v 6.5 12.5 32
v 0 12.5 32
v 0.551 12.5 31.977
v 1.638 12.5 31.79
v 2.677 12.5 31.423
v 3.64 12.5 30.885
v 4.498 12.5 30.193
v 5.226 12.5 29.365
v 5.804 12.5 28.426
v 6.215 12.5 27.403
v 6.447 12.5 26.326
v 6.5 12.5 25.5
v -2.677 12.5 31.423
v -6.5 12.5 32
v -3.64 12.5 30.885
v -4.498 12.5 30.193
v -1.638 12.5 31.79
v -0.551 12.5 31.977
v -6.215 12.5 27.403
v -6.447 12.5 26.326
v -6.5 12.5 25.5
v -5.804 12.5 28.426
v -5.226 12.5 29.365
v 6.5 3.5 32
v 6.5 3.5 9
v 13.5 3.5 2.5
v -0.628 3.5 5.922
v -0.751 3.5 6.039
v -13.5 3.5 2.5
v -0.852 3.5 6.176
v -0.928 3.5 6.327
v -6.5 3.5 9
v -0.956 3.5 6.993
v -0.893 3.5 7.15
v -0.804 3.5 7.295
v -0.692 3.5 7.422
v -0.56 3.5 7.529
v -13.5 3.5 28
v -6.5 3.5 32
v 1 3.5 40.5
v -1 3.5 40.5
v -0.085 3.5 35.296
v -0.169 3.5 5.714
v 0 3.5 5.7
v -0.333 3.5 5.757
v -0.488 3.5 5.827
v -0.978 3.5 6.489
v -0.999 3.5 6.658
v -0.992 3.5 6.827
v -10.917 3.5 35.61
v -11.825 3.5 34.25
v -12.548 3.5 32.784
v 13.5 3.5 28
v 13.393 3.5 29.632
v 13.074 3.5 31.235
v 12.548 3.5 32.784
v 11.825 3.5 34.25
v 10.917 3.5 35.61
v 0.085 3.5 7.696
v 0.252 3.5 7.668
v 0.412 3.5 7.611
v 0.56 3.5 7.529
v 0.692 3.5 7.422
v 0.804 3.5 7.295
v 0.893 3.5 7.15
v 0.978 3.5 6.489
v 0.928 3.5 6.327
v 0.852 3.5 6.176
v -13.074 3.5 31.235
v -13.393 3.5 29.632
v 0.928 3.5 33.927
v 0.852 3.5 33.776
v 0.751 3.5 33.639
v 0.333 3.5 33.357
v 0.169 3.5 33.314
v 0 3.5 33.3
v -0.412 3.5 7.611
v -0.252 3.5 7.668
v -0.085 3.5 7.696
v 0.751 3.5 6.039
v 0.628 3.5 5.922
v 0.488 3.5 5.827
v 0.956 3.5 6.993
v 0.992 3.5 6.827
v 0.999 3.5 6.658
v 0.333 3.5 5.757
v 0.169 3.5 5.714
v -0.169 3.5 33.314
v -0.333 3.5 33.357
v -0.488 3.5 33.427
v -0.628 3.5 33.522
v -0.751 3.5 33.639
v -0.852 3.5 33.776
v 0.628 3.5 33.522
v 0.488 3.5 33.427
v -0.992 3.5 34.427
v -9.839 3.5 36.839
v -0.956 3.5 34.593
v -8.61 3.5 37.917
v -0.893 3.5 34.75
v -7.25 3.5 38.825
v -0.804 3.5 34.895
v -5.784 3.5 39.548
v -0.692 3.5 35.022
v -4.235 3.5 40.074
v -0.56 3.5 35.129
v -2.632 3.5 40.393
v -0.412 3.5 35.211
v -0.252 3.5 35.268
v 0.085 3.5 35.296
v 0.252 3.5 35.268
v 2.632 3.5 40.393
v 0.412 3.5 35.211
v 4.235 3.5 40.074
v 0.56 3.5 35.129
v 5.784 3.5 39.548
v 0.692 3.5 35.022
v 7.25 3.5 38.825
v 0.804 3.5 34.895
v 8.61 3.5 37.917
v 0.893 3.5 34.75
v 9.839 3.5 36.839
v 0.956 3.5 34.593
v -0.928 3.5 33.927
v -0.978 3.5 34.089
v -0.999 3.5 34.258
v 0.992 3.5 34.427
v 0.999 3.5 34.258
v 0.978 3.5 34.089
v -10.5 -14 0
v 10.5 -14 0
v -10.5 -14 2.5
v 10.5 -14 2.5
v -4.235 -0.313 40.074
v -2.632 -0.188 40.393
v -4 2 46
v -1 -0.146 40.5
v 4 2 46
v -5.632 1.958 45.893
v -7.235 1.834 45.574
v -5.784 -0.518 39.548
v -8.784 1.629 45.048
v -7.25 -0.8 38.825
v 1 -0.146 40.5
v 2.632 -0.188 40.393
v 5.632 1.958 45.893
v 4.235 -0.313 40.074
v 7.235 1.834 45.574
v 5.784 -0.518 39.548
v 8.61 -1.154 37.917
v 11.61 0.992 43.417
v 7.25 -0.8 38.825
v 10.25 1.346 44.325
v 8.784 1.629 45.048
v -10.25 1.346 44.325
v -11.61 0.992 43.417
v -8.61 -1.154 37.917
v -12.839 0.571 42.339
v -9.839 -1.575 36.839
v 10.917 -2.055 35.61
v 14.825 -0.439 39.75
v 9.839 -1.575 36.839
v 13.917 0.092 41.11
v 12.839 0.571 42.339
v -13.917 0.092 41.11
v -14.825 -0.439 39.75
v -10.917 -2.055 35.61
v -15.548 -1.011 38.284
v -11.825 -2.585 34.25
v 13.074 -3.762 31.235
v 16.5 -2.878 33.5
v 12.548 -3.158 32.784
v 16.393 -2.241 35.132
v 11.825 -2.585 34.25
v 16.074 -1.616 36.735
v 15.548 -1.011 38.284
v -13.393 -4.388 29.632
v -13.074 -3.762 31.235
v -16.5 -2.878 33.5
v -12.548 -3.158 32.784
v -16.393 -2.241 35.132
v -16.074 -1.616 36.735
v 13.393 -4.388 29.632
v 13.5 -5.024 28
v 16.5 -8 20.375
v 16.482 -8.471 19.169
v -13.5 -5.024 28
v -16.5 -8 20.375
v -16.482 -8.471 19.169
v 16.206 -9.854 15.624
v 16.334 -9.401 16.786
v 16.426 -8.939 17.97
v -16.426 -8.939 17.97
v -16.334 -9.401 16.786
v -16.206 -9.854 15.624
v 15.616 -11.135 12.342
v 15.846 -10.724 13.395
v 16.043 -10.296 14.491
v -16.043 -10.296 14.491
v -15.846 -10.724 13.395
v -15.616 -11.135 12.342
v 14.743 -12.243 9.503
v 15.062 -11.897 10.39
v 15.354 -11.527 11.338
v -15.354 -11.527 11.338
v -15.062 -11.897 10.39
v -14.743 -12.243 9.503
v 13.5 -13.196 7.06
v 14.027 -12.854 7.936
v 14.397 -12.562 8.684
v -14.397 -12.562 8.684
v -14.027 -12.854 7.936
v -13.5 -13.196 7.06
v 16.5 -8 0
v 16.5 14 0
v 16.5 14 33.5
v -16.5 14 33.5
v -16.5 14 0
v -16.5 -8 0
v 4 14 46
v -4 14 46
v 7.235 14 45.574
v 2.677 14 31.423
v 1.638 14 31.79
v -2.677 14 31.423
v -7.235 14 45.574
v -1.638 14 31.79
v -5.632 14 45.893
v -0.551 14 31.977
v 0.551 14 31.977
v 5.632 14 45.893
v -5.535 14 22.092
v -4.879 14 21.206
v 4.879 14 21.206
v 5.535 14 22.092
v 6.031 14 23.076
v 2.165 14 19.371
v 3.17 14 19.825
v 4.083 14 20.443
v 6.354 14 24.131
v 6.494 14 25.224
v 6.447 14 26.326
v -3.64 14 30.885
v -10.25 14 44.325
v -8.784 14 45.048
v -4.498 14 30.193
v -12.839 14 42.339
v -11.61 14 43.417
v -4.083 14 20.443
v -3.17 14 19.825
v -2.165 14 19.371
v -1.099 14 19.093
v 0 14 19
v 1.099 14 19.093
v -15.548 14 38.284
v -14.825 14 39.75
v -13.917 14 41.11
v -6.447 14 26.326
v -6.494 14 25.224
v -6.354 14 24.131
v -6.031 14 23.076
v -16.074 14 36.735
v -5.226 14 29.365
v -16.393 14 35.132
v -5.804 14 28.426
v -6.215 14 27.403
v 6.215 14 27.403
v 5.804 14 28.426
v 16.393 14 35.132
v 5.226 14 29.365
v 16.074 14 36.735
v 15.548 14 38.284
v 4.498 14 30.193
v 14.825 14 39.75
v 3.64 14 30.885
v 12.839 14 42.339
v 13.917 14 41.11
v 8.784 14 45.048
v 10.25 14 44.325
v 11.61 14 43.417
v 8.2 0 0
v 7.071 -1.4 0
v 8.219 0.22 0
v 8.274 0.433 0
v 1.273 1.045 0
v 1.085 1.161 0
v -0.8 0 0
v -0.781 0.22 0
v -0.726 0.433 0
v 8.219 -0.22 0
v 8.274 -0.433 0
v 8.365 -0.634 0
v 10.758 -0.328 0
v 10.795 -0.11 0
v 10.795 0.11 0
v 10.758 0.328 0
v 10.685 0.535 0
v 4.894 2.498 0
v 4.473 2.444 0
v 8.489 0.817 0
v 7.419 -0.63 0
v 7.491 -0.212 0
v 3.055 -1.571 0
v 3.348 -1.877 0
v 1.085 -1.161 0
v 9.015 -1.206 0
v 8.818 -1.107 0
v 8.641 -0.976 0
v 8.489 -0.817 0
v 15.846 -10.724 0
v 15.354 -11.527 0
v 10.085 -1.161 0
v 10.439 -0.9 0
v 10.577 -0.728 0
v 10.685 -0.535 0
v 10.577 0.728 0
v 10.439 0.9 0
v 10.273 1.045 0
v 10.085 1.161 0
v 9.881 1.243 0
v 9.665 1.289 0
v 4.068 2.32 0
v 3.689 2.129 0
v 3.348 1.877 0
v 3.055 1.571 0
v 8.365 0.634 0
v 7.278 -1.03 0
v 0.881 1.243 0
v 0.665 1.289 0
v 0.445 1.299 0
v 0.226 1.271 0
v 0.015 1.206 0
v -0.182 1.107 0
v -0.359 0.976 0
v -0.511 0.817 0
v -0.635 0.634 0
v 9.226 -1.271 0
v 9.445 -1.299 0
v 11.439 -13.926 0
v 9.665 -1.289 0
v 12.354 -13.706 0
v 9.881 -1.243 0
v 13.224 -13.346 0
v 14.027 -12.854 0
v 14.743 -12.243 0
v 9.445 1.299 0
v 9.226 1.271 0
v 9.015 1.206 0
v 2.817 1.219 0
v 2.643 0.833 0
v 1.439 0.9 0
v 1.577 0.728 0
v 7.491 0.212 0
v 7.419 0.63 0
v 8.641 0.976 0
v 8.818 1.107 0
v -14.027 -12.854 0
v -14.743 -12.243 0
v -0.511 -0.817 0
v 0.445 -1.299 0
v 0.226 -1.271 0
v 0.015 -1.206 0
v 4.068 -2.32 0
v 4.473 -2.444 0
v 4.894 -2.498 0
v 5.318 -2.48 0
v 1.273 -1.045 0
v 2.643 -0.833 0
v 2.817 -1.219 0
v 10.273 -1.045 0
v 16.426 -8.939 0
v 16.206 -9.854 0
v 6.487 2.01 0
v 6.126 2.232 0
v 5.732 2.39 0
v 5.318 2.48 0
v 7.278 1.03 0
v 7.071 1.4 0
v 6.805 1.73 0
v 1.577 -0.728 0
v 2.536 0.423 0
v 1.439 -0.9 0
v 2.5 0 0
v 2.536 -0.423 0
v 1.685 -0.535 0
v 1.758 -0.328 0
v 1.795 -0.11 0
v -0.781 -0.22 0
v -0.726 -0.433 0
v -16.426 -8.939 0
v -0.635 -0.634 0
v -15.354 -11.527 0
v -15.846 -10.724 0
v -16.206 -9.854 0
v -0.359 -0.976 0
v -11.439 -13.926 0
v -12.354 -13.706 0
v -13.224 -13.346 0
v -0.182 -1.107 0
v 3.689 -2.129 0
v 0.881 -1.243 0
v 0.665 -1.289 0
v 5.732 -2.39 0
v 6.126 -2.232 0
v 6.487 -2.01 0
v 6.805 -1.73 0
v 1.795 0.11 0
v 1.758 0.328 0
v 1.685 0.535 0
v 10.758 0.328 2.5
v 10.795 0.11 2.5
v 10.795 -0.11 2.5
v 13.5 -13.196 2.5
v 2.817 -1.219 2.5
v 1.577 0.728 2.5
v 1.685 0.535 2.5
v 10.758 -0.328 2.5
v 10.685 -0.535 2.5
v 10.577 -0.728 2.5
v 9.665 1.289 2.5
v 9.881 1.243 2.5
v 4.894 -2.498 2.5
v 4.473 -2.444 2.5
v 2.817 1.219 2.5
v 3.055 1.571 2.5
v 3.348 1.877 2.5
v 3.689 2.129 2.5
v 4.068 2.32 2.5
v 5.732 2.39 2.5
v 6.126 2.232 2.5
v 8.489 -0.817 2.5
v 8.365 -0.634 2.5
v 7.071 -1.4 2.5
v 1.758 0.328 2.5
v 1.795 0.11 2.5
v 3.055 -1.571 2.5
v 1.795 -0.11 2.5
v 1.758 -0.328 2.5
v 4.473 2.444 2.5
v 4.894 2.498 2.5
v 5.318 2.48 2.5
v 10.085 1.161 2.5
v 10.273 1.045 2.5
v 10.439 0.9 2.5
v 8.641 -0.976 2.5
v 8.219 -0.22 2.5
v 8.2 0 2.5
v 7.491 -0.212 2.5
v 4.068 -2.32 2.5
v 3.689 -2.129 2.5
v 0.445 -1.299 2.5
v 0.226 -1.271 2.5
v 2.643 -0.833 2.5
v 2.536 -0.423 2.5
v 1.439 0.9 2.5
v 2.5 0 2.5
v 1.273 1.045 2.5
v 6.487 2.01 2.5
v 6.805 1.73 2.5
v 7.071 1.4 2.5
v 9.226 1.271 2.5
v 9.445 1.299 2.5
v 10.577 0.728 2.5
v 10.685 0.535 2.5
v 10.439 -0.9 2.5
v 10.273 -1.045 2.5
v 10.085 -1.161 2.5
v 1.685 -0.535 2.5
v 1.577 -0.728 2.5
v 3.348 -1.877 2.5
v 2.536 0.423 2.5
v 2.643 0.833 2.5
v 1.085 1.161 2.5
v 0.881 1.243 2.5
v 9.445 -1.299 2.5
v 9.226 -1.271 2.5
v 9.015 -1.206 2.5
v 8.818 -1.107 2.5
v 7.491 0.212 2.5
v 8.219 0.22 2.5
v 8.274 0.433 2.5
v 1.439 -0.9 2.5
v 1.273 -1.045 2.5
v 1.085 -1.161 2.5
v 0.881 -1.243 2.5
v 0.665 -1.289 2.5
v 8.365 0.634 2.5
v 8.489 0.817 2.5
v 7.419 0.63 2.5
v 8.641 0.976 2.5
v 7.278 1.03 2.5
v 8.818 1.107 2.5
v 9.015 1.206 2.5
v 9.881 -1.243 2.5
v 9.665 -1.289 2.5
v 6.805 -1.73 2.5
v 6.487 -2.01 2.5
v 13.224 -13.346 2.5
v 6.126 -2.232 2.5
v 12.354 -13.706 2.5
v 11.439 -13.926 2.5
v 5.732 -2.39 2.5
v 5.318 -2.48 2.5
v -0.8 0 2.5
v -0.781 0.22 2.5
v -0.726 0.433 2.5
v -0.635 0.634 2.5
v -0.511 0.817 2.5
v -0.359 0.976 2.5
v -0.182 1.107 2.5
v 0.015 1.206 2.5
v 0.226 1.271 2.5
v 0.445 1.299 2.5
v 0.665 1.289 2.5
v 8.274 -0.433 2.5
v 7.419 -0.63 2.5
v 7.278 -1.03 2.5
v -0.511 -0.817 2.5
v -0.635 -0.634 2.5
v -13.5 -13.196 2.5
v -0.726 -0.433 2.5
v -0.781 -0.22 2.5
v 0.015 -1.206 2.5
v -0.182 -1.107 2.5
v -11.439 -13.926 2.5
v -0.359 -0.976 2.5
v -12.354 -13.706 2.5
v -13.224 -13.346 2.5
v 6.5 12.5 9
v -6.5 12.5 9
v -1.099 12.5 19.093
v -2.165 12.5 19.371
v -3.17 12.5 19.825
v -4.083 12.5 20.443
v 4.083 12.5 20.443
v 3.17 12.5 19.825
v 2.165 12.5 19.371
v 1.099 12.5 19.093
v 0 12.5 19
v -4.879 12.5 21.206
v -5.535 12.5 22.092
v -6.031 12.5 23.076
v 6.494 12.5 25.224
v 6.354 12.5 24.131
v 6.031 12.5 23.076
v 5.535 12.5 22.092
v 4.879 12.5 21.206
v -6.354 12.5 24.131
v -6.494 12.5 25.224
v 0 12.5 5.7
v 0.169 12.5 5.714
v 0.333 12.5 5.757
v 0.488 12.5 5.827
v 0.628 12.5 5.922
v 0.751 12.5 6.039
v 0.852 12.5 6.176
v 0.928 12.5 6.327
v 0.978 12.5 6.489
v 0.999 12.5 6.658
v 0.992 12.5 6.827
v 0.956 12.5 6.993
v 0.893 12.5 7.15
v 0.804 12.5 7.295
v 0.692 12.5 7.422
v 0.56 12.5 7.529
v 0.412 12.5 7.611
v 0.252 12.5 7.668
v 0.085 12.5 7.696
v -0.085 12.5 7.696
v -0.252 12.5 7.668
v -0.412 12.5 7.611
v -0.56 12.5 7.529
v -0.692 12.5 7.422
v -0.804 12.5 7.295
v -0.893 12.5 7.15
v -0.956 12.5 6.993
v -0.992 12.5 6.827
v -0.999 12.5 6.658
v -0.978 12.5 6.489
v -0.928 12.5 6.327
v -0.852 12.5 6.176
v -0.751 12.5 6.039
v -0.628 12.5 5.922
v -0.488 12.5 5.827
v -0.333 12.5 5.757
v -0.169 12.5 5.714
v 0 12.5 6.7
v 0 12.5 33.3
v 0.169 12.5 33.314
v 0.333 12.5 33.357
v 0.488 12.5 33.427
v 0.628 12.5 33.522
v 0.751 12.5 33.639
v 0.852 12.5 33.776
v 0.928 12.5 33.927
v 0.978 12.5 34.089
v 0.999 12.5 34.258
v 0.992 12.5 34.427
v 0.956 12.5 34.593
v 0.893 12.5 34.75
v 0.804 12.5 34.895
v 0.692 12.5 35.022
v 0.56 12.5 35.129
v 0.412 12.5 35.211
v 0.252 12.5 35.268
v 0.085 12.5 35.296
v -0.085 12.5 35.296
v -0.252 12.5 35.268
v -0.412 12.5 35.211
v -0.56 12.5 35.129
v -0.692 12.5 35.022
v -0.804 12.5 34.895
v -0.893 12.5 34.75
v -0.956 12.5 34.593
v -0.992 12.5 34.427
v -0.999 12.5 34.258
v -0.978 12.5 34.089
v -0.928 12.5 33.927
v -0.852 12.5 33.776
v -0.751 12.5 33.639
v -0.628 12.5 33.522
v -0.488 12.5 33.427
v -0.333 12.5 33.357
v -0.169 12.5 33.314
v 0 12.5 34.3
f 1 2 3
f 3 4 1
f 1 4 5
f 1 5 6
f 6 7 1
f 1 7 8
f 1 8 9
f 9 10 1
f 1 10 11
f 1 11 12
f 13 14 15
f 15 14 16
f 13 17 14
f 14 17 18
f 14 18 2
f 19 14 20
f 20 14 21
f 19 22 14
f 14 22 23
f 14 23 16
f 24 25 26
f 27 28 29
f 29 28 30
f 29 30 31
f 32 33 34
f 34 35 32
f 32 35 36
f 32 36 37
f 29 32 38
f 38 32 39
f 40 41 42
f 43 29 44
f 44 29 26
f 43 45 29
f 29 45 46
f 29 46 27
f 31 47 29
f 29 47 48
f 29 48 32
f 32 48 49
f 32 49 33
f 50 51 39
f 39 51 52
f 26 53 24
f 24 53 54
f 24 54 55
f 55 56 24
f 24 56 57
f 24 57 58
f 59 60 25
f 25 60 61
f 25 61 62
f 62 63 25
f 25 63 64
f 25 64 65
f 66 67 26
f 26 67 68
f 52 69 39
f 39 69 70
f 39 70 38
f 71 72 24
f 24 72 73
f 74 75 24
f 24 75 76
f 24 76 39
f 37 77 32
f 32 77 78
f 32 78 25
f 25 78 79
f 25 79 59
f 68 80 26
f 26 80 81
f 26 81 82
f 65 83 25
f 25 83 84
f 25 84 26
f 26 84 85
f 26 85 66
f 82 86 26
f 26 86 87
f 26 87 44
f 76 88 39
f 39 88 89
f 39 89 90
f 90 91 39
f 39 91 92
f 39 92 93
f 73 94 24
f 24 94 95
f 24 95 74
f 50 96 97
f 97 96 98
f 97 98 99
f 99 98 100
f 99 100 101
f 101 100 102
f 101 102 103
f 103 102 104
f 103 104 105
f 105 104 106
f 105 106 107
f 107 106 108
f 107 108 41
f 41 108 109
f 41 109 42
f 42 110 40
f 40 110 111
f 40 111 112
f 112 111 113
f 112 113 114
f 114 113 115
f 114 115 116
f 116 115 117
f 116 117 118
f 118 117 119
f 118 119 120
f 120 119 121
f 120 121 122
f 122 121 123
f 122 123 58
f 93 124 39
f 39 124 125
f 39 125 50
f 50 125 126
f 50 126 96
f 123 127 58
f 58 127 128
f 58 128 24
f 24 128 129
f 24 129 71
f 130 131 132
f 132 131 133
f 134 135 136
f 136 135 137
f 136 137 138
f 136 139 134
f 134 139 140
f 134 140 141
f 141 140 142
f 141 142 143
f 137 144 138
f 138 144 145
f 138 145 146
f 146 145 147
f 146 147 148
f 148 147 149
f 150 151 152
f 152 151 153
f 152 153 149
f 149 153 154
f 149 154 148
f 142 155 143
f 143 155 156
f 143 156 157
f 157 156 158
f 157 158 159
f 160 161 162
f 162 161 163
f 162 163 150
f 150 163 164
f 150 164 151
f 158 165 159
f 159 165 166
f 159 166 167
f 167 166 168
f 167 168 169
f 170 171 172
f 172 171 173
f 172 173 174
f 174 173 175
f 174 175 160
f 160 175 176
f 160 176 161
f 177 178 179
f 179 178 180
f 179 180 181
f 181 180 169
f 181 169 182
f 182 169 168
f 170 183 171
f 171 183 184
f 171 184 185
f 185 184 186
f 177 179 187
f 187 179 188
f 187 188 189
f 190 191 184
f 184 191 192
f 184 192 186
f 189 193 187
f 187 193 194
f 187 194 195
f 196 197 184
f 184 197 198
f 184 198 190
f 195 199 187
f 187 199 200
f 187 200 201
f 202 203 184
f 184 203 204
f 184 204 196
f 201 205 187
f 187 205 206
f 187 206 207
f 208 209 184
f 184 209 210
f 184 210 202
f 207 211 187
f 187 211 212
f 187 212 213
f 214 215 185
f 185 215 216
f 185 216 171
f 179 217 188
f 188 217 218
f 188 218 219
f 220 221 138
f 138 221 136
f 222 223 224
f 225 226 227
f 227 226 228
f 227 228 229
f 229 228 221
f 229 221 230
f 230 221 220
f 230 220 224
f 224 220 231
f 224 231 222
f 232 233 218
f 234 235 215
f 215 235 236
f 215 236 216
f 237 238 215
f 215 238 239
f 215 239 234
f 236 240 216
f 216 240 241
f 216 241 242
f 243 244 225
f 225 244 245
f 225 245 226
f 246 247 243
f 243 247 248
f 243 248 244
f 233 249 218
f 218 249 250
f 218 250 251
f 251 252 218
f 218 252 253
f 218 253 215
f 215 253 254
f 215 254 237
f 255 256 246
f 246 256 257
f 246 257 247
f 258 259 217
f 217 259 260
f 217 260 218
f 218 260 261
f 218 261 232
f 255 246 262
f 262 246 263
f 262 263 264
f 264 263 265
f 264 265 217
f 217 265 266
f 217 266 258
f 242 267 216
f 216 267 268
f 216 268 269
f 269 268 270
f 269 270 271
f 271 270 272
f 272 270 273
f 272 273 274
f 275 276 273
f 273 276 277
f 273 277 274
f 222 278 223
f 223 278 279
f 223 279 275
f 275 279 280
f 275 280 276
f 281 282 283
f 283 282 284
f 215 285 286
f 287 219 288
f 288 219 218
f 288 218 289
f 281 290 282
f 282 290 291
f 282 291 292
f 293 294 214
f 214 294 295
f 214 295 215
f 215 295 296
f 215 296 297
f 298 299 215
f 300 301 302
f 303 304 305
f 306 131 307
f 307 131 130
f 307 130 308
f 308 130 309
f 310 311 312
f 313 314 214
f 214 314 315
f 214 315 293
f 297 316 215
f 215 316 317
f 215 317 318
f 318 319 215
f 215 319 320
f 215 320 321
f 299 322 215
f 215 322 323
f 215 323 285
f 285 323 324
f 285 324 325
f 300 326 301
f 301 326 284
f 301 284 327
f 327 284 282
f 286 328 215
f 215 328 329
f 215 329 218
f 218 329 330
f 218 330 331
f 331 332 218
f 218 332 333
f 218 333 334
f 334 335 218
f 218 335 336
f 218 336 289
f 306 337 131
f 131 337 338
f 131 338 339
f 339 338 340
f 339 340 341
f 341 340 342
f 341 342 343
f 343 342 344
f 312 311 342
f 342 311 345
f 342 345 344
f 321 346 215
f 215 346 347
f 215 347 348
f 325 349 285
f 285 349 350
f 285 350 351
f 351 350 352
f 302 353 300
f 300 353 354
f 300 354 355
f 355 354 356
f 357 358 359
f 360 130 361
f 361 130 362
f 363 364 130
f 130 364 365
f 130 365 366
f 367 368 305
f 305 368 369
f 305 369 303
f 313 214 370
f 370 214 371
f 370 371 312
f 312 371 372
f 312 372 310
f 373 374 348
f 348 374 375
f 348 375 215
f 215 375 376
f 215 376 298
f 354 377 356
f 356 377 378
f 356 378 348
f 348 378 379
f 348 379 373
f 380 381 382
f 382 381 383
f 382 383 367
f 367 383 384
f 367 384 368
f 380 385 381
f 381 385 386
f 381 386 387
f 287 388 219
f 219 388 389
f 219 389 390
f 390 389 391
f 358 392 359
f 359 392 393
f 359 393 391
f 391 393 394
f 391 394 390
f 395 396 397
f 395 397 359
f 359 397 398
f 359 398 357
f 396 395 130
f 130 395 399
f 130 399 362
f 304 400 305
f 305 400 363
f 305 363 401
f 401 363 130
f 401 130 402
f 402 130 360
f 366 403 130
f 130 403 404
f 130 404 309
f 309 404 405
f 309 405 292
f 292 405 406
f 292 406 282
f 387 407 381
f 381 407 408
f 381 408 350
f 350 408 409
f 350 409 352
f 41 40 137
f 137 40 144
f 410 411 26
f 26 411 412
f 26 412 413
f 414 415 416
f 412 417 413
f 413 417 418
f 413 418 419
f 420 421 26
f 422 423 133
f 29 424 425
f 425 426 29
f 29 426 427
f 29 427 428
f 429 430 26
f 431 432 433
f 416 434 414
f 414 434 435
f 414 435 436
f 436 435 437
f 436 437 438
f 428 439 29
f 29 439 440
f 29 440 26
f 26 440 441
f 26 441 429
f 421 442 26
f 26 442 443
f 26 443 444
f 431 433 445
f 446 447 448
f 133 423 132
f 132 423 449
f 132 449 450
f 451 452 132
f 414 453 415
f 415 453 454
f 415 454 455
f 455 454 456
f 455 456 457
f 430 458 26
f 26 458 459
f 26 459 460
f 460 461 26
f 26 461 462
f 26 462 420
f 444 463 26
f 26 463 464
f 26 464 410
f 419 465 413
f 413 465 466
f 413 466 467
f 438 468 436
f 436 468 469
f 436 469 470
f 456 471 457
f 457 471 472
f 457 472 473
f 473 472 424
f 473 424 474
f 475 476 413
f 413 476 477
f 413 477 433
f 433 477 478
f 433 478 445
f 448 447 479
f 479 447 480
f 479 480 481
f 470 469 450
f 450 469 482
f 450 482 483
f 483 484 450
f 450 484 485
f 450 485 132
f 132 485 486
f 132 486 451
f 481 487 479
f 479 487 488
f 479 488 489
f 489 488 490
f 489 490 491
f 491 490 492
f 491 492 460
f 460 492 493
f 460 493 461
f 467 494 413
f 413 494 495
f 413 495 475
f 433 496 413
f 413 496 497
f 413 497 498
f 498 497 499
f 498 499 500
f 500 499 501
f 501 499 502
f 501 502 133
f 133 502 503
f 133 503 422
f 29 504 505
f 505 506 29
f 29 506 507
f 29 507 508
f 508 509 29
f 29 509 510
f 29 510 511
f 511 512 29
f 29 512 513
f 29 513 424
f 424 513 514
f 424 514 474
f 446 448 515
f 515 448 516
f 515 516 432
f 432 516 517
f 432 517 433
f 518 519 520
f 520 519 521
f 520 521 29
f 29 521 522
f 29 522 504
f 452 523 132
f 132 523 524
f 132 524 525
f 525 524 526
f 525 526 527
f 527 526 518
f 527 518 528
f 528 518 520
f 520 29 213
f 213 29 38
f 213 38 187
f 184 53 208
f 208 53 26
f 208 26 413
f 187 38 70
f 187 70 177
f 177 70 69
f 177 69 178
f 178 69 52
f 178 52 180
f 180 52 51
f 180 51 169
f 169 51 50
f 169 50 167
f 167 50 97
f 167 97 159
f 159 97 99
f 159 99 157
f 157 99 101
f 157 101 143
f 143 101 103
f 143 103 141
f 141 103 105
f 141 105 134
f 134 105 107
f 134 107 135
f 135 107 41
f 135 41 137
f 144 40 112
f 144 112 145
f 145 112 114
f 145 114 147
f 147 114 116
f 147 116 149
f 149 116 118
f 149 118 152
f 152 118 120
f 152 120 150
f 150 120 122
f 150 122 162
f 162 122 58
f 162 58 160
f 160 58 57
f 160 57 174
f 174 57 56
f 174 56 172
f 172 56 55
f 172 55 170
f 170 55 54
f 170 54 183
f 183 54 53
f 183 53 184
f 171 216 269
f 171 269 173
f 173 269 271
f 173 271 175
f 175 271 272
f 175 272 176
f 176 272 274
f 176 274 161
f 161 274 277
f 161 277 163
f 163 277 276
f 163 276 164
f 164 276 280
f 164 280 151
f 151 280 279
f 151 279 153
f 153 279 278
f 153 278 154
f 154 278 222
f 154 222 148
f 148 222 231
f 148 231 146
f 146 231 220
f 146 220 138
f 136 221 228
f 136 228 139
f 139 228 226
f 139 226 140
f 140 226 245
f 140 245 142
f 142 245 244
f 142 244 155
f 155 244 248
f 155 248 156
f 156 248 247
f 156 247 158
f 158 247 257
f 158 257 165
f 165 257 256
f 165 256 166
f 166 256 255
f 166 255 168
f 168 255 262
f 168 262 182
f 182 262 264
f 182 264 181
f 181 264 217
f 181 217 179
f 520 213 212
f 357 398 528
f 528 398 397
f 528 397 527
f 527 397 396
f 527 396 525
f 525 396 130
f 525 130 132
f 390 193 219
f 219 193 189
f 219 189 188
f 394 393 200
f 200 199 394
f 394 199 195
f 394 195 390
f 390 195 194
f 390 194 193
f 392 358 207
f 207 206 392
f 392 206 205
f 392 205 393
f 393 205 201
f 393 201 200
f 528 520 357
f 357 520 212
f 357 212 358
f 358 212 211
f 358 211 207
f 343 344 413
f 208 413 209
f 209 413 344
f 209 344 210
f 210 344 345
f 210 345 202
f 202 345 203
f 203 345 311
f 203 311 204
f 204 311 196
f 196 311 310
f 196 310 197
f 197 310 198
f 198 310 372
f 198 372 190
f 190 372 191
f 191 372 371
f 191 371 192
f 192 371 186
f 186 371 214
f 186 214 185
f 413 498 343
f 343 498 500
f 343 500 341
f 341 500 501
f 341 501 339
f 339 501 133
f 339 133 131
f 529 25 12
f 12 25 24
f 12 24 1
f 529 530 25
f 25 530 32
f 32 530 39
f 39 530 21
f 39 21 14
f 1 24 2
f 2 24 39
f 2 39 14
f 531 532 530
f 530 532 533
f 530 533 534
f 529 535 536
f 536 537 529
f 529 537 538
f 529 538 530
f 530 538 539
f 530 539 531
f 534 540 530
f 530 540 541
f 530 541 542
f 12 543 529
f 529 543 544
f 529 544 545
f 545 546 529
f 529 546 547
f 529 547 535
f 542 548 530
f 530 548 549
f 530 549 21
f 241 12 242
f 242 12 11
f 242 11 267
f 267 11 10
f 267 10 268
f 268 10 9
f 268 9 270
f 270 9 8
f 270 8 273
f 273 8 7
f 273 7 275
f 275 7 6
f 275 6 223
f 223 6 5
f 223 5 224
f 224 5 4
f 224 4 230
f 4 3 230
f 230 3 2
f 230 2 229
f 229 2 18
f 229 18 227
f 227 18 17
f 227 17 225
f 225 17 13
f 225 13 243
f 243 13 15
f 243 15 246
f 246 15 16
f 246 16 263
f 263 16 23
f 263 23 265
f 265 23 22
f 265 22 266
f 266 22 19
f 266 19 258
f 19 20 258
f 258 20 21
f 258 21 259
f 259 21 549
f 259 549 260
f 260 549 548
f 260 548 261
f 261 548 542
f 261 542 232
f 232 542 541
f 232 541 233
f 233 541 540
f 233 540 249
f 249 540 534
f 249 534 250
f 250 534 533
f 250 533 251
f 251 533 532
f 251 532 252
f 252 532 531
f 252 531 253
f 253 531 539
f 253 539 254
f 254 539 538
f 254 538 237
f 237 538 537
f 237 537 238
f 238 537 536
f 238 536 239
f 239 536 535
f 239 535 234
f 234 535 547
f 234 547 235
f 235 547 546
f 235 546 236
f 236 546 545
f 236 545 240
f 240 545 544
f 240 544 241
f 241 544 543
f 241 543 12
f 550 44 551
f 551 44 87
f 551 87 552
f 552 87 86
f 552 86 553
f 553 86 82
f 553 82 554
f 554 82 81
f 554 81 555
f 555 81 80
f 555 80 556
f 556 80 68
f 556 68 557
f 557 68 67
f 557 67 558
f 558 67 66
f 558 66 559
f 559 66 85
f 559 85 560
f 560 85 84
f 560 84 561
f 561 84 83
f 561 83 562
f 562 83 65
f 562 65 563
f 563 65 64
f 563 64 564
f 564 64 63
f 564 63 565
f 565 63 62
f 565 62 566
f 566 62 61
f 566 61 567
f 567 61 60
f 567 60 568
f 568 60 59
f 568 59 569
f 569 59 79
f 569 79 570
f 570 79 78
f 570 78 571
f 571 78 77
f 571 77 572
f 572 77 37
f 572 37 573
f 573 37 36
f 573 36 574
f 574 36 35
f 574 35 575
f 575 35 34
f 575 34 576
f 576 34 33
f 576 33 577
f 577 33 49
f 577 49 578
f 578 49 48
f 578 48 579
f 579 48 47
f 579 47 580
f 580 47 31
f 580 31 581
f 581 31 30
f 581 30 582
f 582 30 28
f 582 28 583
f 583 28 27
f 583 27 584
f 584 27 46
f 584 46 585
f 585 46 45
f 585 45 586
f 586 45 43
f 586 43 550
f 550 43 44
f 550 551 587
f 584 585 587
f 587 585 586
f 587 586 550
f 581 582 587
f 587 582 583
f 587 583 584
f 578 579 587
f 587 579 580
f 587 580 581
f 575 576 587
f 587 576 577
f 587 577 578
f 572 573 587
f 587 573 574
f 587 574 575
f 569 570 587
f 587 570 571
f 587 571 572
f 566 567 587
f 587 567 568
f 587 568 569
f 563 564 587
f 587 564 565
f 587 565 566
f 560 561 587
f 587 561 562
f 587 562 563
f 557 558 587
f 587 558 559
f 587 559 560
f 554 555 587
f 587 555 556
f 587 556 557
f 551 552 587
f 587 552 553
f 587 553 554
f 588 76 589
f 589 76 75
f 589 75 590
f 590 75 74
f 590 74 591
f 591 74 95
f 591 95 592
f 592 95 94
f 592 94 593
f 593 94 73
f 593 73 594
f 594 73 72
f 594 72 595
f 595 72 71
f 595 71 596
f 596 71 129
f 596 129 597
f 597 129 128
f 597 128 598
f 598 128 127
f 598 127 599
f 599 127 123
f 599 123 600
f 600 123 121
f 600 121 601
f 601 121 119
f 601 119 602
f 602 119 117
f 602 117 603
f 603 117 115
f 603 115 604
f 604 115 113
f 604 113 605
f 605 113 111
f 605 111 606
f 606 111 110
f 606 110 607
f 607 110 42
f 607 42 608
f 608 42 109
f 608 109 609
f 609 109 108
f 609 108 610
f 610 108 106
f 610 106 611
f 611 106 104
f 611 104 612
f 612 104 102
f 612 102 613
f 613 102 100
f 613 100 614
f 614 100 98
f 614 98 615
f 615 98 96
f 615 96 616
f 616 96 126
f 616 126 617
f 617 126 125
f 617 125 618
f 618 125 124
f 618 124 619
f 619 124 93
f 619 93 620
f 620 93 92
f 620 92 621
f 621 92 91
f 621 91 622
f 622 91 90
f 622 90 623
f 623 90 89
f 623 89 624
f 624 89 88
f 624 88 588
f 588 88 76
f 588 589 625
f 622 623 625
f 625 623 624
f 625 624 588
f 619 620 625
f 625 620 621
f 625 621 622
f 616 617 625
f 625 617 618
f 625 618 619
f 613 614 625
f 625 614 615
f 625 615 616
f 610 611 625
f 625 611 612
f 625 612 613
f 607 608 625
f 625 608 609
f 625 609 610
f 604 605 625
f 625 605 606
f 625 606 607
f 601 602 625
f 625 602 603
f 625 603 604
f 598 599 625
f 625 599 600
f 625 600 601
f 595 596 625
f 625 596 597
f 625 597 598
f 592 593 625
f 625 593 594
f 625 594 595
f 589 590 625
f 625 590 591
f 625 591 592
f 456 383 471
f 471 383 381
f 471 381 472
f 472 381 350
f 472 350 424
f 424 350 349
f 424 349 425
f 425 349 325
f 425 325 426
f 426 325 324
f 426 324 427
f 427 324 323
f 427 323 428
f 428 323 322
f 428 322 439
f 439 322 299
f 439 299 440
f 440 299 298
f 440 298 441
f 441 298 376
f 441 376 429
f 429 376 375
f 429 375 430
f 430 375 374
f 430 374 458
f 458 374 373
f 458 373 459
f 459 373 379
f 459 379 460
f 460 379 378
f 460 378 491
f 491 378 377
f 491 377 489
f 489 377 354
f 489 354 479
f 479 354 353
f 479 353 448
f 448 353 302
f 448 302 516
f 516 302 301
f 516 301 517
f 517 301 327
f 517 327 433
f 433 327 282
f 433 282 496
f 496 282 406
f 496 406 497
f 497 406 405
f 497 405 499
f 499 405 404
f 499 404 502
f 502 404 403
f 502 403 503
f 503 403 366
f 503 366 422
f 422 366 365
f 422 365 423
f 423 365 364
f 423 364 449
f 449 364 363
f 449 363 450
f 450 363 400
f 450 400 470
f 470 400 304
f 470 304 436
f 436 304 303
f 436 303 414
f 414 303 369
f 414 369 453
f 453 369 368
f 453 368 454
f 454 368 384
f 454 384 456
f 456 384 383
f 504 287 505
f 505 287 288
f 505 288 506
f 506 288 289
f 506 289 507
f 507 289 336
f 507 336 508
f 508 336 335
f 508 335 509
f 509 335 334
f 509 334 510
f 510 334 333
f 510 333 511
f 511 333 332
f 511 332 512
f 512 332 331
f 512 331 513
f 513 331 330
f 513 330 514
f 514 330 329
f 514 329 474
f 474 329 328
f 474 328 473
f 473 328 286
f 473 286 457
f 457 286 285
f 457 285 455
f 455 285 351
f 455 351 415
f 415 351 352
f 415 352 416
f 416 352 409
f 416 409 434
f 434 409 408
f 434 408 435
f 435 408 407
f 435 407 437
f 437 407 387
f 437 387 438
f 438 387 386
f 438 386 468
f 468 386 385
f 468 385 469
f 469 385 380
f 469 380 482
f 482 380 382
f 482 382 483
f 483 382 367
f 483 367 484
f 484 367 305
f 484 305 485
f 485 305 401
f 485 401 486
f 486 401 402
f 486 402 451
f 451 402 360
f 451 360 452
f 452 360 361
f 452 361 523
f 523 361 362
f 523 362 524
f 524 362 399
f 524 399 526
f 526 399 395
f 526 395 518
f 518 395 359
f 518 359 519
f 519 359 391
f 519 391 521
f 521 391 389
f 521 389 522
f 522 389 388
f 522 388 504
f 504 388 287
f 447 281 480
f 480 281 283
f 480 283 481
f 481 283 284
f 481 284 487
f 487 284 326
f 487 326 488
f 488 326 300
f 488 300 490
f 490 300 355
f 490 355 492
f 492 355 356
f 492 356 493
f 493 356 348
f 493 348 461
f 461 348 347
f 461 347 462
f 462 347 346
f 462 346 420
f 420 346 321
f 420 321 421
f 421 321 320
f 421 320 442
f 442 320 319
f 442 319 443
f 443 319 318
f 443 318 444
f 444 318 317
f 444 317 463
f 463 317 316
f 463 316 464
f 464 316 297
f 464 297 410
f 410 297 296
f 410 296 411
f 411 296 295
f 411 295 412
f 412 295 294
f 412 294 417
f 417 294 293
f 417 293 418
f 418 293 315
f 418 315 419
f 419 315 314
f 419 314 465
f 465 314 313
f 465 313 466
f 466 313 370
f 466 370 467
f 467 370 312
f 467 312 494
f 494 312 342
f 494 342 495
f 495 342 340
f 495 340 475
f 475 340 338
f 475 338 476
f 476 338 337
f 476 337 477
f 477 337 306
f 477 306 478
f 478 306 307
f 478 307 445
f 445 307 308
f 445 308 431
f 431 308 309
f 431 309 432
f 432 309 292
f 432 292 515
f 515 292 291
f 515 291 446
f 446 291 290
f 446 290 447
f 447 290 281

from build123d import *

# Parameters (mm, degrees)
SKETCH2_W           = 33
SKETCH2_H           = 28
BOSS_EXTRUDE1_DEPTH = 46
CUT_EXTRUDE2_DEPTH  = 59.318093247
CUT_EXTRUDE4_START  = -3
CUT_EXTRUDE4_DEPTH  = 27
FILLET2_R           = 12.5
FILLET3_R           = 12.5
FILLET4_R           = 6
SKETCH7_W           = 13
SKETCH7_H           = 23
CUT_EXTRUDE5_DEPTH  = 9
SKETCH8_R           = 6.5
CUT_EXTRUDE6_DEPTH  = 9
SKETCH9_R           = 1
CUT_EXTRUDE7_DEPTH  = 9
SKETCH10_R          = 2.5
SKETCH10_R_2        = 1.3
CUT_EXTRUDE8_DEPTH  = 9


with BuildPart() as part:
    # Sketch2 → Boss-Extrude1 (new body)
    with BuildSketch(Plane.XY):
        Rectangle(SKETCH2_W, SKETCH2_H)
    extrude(amount=BOSS_EXTRUDE1_DEPTH)

    # Sketch5 → Cut-Extrude2 (cut, through all)
    with BuildSketch(Plane(origin=(16.5, 0, 0), x_dir=(0, 0, -1), z_dir=(1, 0, 0))):
        Polygon((-5, -14), (-46, 2), (-46, -14), align=None)
    extrude(amount=-CUT_EXTRUDE2_DEPTH, mode=Mode.SUBTRACT)

    # Sketch6 → Cut-Extrude4 (cut)
    with BuildSketch(Plane(origin=(16.5, 0, 0), x_dir=(0, 0, -1), z_dir=(1, 0, 0)).offset(CUT_EXTRUDE4_START)):
        Polygon((-5, -14), (-2.5, -14), (-2.5, 3.5), (-40.5, 3.5), (-40.5, -0.146341463), align=None)
    extrude(amount=-CUT_EXTRUDE4_DEPTH, mode=Mode.SUBTRACT)

    # Fillet2
    fillet2_edges = [part.edges().sort_by_distance(p)[0] for p in [
        (-13.5, 1.676829268, 40.5),
        (13.5, 1.676829268, 40.5),
    ]]
    fillet(fillet2_edges, radius=FILLET2_R)

    # Fillet3
    fillet3_edges = [part.edges().sort_by_distance(p)[0] for p in [
        (16.5, 8, 46),
        (-16.5, 8, 46),
    ]]
    fillet(fillet3_edges, radius=FILLET3_R)

    # Fillet4
    fillet4_edges = [part.edges().sort_by_distance(p)[0] for p in [
        (-16.5, -14, 2.5),
        (16.5, -14, 2.5),
    ]]
    fillet(fillet4_edges, radius=FILLET4_R)

    # Sketch7 → Cut-Extrude5 (cut)
    with BuildSketch(Plane.XZ.offset(-3.5)):
        with Locations((0, 20.5)):
            Rectangle(SKETCH7_W, SKETCH7_H)
    extrude(amount=-CUT_EXTRUDE5_DEPTH, mode=Mode.SUBTRACT)

    # Sketch8 → Cut-Extrude6 (cut)
    with BuildSketch(Plane.XZ.offset(-12.5)):
        with Locations((0, 25.5)):
            Circle(SKETCH8_R)
    extrude(amount=-CUT_EXTRUDE6_DEPTH, mode=Mode.SUBTRACT)

    # Sketch9 → Cut-Extrude7 (cut)
    with BuildSketch(Plane.XZ.offset(-3.5)):
        with Locations((0, 34.3)):
            Circle(SKETCH9_R)
        with Locations((0, 6.7)):
            Circle(SKETCH9_R)
    extrude(amount=-CUT_EXTRUDE7_DEPTH, mode=Mode.SUBTRACT)

    # Sketch10 → Cut-Extrude8 (cut)
    with BuildSketch(Plane(origin=(0, 0, 0), x_dir=(-1, 0, 0), z_dir=(0, 0, -1))):
        with Locations((-5, 0)):
            Circle(SKETCH10_R)
        with Locations((-0.5, 0)):
            Circle(SKETCH10_R_2)
        with Locations((-9.5, 0)):
            Circle(SKETCH10_R_2)
    extrude(amount=-CUT_EXTRUDE8_DEPTH, mode=Mode.SUBTRACT)


solid = part.part
